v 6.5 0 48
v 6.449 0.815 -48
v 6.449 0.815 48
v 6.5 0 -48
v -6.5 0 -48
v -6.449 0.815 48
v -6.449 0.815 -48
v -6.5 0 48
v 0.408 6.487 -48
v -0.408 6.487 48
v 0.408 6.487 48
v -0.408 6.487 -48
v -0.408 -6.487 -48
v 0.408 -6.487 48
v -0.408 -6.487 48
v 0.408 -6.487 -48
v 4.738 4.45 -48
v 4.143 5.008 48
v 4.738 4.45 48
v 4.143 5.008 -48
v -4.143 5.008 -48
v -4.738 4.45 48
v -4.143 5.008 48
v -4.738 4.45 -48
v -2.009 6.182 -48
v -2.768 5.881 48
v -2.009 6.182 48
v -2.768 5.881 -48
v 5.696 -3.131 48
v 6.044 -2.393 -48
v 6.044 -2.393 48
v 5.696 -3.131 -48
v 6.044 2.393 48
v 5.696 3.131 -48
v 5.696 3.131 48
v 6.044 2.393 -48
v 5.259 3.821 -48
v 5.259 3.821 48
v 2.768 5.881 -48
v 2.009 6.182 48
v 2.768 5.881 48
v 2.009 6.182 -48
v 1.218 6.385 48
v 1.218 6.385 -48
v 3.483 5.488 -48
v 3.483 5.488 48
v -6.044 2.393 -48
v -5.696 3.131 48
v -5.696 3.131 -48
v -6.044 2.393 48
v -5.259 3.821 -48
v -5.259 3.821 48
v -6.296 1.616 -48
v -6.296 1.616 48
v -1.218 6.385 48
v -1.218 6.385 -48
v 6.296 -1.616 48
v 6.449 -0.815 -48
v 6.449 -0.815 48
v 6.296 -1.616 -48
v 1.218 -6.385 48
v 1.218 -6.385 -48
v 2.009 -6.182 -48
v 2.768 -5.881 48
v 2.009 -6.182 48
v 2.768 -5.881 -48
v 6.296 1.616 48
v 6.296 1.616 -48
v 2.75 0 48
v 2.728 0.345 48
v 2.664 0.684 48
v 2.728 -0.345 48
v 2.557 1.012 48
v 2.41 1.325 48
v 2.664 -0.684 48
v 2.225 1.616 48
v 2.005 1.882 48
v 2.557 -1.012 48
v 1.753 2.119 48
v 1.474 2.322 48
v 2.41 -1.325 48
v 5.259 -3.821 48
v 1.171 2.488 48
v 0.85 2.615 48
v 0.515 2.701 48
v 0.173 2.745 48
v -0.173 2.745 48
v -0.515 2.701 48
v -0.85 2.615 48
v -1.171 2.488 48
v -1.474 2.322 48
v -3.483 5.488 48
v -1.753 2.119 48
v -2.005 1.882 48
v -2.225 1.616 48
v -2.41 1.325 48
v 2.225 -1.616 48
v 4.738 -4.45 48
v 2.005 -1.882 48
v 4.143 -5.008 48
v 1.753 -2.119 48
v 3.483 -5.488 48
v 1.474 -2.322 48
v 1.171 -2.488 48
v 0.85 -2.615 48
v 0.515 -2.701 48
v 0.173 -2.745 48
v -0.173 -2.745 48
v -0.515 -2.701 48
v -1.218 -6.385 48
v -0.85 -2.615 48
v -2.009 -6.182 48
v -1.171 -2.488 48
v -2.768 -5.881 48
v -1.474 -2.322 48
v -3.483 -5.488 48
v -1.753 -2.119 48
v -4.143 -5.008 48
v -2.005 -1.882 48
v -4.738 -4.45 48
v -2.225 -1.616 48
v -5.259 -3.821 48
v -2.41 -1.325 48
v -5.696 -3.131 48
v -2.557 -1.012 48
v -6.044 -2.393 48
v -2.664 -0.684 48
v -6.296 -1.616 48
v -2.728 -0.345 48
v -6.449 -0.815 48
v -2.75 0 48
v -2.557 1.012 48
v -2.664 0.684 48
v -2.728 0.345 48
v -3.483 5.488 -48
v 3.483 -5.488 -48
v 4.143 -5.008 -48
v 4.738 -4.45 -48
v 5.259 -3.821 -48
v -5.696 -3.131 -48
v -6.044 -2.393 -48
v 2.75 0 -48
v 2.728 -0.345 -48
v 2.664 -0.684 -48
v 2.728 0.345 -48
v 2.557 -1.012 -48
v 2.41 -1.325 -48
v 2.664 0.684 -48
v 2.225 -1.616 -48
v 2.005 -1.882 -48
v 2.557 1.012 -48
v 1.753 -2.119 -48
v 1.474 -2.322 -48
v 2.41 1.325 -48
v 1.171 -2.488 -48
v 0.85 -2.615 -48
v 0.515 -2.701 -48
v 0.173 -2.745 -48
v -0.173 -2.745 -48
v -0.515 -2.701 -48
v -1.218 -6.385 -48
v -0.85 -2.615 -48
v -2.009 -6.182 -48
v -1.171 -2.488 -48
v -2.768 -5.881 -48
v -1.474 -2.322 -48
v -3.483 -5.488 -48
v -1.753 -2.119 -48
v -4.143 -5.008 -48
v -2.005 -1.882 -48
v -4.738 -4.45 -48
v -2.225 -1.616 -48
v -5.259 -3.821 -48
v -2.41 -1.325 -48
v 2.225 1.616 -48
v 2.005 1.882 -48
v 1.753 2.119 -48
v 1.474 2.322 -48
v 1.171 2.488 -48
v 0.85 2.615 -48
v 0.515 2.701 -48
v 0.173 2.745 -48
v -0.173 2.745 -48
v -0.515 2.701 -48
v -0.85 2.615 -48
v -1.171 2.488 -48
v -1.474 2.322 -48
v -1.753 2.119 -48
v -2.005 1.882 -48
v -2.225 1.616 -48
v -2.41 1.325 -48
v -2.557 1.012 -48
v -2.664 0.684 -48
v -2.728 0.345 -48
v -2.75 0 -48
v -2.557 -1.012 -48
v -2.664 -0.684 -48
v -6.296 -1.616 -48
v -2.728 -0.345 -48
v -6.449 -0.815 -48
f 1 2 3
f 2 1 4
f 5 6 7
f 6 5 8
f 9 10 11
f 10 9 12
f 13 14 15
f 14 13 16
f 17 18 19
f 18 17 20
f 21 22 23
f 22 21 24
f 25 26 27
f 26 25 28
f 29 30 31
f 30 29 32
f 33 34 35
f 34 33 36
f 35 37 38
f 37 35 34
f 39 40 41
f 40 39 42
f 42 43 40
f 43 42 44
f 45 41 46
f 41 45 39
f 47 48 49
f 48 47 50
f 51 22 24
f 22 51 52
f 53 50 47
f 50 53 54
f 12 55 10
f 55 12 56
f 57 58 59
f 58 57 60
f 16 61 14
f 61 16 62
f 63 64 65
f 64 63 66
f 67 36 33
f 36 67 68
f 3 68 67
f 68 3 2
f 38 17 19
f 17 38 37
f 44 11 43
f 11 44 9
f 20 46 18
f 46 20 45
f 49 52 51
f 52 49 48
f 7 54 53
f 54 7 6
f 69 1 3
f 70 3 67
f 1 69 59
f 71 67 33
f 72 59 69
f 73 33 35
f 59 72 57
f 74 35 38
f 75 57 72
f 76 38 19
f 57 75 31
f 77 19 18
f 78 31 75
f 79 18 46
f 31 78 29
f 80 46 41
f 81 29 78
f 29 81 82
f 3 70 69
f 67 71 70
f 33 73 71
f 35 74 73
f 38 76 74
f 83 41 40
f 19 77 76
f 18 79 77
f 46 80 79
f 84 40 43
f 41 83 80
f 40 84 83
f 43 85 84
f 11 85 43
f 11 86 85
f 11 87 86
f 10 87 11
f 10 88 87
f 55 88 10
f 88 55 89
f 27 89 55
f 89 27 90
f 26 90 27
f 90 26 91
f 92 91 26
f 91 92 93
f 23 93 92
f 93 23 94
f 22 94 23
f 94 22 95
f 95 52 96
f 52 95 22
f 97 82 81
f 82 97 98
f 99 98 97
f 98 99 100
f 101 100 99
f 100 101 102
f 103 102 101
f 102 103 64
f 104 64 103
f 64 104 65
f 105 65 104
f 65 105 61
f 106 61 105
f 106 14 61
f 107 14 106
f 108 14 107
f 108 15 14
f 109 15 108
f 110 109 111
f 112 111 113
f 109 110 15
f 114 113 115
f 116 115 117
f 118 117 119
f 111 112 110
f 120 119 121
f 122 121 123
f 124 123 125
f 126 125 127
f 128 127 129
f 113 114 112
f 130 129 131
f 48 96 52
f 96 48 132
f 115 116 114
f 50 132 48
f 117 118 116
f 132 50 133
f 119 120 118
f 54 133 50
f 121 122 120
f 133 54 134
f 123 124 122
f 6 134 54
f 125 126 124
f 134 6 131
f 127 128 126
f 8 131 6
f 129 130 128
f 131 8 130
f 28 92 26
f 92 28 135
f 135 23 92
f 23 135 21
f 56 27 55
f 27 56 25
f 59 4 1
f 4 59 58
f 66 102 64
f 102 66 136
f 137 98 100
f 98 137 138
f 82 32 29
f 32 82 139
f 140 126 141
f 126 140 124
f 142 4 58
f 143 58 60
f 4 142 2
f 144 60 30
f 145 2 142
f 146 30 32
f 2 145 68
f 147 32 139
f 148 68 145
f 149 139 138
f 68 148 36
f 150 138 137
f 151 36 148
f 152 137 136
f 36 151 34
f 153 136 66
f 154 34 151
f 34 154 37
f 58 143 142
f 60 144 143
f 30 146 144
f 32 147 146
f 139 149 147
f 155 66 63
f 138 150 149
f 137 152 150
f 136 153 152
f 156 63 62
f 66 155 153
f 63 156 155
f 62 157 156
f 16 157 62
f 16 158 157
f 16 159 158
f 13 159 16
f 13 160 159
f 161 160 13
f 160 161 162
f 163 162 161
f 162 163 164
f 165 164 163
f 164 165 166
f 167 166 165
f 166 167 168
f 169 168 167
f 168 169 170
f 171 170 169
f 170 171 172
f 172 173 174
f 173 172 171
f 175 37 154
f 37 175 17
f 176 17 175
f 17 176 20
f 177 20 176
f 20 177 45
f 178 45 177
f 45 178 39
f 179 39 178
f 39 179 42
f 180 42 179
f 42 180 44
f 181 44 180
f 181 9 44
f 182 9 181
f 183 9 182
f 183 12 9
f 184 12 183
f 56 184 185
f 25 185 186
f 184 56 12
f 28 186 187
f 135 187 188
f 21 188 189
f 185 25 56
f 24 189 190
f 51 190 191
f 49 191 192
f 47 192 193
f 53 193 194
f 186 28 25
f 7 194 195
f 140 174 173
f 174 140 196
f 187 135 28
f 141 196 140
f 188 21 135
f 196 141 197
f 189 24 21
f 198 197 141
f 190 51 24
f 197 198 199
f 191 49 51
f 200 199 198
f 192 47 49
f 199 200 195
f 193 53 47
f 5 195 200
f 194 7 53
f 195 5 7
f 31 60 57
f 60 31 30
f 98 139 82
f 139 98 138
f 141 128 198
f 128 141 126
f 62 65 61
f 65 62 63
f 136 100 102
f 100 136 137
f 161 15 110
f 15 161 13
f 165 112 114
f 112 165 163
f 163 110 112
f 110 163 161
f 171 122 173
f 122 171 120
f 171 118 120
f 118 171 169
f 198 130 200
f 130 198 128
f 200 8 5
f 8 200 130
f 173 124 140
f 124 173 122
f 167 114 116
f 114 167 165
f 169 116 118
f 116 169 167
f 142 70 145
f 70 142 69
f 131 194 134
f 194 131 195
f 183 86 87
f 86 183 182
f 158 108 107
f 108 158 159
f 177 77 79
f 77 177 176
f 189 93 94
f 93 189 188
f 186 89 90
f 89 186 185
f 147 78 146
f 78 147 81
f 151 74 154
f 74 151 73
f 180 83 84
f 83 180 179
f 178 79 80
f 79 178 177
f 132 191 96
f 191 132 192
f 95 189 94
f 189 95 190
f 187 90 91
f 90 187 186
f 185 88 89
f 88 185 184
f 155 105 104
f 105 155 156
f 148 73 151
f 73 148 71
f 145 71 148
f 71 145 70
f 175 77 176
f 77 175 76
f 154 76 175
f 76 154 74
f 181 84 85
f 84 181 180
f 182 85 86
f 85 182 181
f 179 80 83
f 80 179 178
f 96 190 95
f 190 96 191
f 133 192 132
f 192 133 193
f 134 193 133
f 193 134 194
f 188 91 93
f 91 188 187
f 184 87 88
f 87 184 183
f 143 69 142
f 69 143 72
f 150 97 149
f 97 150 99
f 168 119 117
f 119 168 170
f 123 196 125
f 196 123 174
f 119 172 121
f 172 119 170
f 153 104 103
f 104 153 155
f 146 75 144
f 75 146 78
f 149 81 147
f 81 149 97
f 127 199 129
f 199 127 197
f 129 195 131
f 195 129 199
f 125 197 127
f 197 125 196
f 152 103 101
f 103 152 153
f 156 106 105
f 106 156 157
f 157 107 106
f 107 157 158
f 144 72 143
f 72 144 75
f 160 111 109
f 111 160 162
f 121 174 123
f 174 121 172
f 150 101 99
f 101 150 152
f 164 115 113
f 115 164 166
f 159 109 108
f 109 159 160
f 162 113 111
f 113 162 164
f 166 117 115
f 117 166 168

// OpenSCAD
$fn = 50;


difference() {
	union() {
		translate(v = [0, 0, -48.0000000000]) {
			cylinder(h = 96, r = 6.5000000000);
		}
	}
	union() {
		translate(v = [0, 0, -100.0000000000]) {
			cylinder(h = 200, r = 2.7500000000);
		}
	}
}
